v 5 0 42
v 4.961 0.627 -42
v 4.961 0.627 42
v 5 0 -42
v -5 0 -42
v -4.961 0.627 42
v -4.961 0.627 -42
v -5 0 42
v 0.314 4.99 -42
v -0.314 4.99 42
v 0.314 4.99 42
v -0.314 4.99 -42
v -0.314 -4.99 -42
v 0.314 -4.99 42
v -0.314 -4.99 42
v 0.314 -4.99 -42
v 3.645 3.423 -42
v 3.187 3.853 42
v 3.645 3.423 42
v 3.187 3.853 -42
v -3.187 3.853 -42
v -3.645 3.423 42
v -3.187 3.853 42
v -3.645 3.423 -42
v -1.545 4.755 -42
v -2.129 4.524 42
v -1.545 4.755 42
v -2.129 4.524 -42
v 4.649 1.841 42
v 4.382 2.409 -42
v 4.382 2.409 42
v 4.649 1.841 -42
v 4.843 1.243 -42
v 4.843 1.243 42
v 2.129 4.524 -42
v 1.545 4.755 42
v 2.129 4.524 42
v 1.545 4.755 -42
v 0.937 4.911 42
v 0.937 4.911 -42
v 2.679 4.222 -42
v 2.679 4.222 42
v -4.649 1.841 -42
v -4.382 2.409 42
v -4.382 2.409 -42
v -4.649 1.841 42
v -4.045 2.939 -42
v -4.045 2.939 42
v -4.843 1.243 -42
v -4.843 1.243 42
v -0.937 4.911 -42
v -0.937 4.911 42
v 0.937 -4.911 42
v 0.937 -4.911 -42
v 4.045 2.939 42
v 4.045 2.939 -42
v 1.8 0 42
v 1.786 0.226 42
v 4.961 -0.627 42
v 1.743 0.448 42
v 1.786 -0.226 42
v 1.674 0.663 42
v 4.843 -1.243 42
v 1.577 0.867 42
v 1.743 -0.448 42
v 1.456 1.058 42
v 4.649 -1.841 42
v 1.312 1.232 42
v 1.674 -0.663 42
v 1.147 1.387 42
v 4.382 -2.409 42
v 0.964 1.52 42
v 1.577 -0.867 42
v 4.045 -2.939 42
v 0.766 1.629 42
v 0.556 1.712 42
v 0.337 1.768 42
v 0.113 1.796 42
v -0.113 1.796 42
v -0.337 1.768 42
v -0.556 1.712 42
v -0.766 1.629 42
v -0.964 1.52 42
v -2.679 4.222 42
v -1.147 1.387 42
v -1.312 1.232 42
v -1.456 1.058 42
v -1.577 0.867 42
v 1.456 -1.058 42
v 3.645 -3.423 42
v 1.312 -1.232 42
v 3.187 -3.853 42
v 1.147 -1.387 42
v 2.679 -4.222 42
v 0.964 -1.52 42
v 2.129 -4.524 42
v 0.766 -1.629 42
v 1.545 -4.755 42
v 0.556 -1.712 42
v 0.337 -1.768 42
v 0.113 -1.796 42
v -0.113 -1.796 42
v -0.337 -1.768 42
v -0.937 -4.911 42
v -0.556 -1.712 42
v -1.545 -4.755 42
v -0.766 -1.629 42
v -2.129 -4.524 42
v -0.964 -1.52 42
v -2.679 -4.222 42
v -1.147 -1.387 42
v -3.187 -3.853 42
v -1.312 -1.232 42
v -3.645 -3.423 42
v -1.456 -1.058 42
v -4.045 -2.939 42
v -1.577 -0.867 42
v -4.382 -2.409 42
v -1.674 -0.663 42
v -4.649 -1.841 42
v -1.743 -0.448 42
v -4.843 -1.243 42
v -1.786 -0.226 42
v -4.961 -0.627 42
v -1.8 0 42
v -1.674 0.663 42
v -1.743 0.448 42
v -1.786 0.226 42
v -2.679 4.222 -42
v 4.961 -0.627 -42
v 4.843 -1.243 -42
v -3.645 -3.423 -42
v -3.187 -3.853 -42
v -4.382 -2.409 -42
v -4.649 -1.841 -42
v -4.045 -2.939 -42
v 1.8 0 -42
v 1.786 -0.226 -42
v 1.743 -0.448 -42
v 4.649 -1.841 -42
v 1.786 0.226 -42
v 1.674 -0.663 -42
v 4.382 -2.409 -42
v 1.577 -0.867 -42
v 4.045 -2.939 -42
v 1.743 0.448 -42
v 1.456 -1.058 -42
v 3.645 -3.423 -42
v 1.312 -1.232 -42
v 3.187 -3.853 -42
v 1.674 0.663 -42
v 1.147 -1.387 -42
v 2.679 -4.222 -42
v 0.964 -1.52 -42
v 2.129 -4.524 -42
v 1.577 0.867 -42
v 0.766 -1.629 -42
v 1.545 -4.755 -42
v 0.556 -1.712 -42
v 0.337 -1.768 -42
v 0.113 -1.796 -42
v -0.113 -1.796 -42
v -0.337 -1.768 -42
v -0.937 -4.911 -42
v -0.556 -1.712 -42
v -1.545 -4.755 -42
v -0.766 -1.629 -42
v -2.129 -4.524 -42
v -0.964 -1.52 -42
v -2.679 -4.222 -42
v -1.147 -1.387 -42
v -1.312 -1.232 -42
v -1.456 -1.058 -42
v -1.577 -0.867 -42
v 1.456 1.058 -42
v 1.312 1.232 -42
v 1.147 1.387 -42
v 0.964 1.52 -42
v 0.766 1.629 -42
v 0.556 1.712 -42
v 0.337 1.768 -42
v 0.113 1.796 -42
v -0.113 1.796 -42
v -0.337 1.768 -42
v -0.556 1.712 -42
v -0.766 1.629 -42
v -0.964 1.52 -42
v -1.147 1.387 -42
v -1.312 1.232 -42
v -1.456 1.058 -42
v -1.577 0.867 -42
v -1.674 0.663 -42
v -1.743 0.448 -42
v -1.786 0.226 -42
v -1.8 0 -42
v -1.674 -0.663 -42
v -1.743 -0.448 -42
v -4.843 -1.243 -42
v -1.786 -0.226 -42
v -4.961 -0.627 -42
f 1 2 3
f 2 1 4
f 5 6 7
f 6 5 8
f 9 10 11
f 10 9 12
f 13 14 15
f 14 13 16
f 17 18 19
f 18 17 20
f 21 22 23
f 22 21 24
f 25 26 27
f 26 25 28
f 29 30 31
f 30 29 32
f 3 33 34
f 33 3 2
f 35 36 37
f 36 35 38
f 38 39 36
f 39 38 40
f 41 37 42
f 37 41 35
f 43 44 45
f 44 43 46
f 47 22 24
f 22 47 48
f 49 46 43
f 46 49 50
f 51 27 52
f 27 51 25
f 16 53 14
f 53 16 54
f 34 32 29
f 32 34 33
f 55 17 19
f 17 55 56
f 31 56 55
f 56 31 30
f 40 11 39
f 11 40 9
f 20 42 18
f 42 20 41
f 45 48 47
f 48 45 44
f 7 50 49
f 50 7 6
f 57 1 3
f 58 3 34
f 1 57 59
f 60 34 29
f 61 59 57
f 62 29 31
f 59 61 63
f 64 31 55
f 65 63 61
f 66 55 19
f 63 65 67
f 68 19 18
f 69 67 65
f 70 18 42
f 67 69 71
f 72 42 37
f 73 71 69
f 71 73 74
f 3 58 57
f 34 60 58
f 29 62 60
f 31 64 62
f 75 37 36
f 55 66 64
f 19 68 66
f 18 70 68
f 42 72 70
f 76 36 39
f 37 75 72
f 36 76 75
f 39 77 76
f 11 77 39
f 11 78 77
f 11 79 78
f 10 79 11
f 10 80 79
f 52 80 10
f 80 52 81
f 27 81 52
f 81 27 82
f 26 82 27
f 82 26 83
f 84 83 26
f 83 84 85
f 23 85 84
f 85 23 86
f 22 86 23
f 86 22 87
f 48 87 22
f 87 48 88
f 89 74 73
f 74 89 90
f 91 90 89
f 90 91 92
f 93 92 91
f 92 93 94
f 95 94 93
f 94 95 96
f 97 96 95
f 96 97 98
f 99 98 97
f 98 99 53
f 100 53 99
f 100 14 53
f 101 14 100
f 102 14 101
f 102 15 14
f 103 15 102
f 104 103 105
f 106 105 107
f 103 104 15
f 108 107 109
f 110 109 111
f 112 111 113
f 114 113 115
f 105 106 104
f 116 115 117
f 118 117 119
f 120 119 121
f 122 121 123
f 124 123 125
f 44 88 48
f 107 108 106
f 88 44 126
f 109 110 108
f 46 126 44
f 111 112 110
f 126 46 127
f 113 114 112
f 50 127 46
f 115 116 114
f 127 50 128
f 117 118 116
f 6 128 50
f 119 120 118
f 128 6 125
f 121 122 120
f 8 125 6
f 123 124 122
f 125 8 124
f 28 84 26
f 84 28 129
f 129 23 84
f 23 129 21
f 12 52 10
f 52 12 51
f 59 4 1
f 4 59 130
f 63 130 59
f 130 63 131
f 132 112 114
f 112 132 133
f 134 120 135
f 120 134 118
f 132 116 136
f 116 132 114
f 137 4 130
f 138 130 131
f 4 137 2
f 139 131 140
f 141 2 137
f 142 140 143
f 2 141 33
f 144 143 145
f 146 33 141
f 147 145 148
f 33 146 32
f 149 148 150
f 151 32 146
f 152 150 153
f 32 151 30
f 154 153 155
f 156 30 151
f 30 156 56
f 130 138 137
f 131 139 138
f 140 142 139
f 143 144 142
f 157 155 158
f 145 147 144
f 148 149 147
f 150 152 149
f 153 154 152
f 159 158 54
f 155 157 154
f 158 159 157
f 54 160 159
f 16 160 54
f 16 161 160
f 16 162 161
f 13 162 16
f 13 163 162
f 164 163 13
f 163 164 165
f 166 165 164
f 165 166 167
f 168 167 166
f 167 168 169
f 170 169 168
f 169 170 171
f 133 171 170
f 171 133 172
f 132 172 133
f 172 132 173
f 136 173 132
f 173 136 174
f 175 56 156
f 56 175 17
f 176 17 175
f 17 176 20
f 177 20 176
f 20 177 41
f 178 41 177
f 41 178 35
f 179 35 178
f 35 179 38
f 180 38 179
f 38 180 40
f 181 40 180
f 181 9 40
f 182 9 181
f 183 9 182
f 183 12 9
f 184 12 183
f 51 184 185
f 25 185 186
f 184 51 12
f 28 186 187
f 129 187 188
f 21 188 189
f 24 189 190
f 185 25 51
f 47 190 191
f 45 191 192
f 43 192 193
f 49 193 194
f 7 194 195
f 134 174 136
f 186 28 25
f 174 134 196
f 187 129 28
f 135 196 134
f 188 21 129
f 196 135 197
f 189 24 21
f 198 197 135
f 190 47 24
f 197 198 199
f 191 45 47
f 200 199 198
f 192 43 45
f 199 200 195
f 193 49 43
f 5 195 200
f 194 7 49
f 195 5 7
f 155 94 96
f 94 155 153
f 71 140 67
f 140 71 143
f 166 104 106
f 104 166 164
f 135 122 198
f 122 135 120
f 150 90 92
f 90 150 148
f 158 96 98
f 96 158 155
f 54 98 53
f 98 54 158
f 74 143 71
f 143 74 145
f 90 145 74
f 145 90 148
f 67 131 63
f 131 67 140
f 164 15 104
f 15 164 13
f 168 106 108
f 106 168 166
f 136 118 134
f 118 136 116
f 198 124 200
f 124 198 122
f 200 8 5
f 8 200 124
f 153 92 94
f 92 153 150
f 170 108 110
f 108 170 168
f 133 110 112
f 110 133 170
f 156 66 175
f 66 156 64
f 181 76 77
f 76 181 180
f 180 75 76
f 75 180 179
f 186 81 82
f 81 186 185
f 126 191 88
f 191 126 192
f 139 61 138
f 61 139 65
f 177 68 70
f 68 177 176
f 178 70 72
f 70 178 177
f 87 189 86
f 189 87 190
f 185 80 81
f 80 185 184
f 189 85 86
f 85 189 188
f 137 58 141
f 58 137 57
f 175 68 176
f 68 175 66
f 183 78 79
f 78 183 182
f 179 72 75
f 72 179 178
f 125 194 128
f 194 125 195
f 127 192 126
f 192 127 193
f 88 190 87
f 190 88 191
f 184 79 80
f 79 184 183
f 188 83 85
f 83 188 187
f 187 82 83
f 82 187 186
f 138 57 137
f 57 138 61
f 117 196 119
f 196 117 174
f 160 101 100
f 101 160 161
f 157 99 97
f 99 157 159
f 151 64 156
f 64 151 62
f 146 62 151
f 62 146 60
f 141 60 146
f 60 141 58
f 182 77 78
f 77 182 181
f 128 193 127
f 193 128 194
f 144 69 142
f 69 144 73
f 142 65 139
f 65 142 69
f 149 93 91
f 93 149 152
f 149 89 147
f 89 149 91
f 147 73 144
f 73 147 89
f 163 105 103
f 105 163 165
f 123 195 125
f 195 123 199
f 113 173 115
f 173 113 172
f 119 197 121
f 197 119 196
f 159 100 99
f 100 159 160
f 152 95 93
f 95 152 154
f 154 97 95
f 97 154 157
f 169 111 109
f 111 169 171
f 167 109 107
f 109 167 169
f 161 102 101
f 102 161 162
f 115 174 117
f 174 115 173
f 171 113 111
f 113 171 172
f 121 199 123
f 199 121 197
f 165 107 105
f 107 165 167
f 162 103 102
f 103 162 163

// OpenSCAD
$fn = 50;


difference() {
	union() {
		translate(v = [0, 0, -42.0000000000]) {
			cylinder(h = 84, r = 5.0000000000);
		}
	}
	union() {
		translate(v = [0, 0, -100.0000000000]) {
			cylinder(h = 200, r = 1.8000000000);
		}
	}
}
